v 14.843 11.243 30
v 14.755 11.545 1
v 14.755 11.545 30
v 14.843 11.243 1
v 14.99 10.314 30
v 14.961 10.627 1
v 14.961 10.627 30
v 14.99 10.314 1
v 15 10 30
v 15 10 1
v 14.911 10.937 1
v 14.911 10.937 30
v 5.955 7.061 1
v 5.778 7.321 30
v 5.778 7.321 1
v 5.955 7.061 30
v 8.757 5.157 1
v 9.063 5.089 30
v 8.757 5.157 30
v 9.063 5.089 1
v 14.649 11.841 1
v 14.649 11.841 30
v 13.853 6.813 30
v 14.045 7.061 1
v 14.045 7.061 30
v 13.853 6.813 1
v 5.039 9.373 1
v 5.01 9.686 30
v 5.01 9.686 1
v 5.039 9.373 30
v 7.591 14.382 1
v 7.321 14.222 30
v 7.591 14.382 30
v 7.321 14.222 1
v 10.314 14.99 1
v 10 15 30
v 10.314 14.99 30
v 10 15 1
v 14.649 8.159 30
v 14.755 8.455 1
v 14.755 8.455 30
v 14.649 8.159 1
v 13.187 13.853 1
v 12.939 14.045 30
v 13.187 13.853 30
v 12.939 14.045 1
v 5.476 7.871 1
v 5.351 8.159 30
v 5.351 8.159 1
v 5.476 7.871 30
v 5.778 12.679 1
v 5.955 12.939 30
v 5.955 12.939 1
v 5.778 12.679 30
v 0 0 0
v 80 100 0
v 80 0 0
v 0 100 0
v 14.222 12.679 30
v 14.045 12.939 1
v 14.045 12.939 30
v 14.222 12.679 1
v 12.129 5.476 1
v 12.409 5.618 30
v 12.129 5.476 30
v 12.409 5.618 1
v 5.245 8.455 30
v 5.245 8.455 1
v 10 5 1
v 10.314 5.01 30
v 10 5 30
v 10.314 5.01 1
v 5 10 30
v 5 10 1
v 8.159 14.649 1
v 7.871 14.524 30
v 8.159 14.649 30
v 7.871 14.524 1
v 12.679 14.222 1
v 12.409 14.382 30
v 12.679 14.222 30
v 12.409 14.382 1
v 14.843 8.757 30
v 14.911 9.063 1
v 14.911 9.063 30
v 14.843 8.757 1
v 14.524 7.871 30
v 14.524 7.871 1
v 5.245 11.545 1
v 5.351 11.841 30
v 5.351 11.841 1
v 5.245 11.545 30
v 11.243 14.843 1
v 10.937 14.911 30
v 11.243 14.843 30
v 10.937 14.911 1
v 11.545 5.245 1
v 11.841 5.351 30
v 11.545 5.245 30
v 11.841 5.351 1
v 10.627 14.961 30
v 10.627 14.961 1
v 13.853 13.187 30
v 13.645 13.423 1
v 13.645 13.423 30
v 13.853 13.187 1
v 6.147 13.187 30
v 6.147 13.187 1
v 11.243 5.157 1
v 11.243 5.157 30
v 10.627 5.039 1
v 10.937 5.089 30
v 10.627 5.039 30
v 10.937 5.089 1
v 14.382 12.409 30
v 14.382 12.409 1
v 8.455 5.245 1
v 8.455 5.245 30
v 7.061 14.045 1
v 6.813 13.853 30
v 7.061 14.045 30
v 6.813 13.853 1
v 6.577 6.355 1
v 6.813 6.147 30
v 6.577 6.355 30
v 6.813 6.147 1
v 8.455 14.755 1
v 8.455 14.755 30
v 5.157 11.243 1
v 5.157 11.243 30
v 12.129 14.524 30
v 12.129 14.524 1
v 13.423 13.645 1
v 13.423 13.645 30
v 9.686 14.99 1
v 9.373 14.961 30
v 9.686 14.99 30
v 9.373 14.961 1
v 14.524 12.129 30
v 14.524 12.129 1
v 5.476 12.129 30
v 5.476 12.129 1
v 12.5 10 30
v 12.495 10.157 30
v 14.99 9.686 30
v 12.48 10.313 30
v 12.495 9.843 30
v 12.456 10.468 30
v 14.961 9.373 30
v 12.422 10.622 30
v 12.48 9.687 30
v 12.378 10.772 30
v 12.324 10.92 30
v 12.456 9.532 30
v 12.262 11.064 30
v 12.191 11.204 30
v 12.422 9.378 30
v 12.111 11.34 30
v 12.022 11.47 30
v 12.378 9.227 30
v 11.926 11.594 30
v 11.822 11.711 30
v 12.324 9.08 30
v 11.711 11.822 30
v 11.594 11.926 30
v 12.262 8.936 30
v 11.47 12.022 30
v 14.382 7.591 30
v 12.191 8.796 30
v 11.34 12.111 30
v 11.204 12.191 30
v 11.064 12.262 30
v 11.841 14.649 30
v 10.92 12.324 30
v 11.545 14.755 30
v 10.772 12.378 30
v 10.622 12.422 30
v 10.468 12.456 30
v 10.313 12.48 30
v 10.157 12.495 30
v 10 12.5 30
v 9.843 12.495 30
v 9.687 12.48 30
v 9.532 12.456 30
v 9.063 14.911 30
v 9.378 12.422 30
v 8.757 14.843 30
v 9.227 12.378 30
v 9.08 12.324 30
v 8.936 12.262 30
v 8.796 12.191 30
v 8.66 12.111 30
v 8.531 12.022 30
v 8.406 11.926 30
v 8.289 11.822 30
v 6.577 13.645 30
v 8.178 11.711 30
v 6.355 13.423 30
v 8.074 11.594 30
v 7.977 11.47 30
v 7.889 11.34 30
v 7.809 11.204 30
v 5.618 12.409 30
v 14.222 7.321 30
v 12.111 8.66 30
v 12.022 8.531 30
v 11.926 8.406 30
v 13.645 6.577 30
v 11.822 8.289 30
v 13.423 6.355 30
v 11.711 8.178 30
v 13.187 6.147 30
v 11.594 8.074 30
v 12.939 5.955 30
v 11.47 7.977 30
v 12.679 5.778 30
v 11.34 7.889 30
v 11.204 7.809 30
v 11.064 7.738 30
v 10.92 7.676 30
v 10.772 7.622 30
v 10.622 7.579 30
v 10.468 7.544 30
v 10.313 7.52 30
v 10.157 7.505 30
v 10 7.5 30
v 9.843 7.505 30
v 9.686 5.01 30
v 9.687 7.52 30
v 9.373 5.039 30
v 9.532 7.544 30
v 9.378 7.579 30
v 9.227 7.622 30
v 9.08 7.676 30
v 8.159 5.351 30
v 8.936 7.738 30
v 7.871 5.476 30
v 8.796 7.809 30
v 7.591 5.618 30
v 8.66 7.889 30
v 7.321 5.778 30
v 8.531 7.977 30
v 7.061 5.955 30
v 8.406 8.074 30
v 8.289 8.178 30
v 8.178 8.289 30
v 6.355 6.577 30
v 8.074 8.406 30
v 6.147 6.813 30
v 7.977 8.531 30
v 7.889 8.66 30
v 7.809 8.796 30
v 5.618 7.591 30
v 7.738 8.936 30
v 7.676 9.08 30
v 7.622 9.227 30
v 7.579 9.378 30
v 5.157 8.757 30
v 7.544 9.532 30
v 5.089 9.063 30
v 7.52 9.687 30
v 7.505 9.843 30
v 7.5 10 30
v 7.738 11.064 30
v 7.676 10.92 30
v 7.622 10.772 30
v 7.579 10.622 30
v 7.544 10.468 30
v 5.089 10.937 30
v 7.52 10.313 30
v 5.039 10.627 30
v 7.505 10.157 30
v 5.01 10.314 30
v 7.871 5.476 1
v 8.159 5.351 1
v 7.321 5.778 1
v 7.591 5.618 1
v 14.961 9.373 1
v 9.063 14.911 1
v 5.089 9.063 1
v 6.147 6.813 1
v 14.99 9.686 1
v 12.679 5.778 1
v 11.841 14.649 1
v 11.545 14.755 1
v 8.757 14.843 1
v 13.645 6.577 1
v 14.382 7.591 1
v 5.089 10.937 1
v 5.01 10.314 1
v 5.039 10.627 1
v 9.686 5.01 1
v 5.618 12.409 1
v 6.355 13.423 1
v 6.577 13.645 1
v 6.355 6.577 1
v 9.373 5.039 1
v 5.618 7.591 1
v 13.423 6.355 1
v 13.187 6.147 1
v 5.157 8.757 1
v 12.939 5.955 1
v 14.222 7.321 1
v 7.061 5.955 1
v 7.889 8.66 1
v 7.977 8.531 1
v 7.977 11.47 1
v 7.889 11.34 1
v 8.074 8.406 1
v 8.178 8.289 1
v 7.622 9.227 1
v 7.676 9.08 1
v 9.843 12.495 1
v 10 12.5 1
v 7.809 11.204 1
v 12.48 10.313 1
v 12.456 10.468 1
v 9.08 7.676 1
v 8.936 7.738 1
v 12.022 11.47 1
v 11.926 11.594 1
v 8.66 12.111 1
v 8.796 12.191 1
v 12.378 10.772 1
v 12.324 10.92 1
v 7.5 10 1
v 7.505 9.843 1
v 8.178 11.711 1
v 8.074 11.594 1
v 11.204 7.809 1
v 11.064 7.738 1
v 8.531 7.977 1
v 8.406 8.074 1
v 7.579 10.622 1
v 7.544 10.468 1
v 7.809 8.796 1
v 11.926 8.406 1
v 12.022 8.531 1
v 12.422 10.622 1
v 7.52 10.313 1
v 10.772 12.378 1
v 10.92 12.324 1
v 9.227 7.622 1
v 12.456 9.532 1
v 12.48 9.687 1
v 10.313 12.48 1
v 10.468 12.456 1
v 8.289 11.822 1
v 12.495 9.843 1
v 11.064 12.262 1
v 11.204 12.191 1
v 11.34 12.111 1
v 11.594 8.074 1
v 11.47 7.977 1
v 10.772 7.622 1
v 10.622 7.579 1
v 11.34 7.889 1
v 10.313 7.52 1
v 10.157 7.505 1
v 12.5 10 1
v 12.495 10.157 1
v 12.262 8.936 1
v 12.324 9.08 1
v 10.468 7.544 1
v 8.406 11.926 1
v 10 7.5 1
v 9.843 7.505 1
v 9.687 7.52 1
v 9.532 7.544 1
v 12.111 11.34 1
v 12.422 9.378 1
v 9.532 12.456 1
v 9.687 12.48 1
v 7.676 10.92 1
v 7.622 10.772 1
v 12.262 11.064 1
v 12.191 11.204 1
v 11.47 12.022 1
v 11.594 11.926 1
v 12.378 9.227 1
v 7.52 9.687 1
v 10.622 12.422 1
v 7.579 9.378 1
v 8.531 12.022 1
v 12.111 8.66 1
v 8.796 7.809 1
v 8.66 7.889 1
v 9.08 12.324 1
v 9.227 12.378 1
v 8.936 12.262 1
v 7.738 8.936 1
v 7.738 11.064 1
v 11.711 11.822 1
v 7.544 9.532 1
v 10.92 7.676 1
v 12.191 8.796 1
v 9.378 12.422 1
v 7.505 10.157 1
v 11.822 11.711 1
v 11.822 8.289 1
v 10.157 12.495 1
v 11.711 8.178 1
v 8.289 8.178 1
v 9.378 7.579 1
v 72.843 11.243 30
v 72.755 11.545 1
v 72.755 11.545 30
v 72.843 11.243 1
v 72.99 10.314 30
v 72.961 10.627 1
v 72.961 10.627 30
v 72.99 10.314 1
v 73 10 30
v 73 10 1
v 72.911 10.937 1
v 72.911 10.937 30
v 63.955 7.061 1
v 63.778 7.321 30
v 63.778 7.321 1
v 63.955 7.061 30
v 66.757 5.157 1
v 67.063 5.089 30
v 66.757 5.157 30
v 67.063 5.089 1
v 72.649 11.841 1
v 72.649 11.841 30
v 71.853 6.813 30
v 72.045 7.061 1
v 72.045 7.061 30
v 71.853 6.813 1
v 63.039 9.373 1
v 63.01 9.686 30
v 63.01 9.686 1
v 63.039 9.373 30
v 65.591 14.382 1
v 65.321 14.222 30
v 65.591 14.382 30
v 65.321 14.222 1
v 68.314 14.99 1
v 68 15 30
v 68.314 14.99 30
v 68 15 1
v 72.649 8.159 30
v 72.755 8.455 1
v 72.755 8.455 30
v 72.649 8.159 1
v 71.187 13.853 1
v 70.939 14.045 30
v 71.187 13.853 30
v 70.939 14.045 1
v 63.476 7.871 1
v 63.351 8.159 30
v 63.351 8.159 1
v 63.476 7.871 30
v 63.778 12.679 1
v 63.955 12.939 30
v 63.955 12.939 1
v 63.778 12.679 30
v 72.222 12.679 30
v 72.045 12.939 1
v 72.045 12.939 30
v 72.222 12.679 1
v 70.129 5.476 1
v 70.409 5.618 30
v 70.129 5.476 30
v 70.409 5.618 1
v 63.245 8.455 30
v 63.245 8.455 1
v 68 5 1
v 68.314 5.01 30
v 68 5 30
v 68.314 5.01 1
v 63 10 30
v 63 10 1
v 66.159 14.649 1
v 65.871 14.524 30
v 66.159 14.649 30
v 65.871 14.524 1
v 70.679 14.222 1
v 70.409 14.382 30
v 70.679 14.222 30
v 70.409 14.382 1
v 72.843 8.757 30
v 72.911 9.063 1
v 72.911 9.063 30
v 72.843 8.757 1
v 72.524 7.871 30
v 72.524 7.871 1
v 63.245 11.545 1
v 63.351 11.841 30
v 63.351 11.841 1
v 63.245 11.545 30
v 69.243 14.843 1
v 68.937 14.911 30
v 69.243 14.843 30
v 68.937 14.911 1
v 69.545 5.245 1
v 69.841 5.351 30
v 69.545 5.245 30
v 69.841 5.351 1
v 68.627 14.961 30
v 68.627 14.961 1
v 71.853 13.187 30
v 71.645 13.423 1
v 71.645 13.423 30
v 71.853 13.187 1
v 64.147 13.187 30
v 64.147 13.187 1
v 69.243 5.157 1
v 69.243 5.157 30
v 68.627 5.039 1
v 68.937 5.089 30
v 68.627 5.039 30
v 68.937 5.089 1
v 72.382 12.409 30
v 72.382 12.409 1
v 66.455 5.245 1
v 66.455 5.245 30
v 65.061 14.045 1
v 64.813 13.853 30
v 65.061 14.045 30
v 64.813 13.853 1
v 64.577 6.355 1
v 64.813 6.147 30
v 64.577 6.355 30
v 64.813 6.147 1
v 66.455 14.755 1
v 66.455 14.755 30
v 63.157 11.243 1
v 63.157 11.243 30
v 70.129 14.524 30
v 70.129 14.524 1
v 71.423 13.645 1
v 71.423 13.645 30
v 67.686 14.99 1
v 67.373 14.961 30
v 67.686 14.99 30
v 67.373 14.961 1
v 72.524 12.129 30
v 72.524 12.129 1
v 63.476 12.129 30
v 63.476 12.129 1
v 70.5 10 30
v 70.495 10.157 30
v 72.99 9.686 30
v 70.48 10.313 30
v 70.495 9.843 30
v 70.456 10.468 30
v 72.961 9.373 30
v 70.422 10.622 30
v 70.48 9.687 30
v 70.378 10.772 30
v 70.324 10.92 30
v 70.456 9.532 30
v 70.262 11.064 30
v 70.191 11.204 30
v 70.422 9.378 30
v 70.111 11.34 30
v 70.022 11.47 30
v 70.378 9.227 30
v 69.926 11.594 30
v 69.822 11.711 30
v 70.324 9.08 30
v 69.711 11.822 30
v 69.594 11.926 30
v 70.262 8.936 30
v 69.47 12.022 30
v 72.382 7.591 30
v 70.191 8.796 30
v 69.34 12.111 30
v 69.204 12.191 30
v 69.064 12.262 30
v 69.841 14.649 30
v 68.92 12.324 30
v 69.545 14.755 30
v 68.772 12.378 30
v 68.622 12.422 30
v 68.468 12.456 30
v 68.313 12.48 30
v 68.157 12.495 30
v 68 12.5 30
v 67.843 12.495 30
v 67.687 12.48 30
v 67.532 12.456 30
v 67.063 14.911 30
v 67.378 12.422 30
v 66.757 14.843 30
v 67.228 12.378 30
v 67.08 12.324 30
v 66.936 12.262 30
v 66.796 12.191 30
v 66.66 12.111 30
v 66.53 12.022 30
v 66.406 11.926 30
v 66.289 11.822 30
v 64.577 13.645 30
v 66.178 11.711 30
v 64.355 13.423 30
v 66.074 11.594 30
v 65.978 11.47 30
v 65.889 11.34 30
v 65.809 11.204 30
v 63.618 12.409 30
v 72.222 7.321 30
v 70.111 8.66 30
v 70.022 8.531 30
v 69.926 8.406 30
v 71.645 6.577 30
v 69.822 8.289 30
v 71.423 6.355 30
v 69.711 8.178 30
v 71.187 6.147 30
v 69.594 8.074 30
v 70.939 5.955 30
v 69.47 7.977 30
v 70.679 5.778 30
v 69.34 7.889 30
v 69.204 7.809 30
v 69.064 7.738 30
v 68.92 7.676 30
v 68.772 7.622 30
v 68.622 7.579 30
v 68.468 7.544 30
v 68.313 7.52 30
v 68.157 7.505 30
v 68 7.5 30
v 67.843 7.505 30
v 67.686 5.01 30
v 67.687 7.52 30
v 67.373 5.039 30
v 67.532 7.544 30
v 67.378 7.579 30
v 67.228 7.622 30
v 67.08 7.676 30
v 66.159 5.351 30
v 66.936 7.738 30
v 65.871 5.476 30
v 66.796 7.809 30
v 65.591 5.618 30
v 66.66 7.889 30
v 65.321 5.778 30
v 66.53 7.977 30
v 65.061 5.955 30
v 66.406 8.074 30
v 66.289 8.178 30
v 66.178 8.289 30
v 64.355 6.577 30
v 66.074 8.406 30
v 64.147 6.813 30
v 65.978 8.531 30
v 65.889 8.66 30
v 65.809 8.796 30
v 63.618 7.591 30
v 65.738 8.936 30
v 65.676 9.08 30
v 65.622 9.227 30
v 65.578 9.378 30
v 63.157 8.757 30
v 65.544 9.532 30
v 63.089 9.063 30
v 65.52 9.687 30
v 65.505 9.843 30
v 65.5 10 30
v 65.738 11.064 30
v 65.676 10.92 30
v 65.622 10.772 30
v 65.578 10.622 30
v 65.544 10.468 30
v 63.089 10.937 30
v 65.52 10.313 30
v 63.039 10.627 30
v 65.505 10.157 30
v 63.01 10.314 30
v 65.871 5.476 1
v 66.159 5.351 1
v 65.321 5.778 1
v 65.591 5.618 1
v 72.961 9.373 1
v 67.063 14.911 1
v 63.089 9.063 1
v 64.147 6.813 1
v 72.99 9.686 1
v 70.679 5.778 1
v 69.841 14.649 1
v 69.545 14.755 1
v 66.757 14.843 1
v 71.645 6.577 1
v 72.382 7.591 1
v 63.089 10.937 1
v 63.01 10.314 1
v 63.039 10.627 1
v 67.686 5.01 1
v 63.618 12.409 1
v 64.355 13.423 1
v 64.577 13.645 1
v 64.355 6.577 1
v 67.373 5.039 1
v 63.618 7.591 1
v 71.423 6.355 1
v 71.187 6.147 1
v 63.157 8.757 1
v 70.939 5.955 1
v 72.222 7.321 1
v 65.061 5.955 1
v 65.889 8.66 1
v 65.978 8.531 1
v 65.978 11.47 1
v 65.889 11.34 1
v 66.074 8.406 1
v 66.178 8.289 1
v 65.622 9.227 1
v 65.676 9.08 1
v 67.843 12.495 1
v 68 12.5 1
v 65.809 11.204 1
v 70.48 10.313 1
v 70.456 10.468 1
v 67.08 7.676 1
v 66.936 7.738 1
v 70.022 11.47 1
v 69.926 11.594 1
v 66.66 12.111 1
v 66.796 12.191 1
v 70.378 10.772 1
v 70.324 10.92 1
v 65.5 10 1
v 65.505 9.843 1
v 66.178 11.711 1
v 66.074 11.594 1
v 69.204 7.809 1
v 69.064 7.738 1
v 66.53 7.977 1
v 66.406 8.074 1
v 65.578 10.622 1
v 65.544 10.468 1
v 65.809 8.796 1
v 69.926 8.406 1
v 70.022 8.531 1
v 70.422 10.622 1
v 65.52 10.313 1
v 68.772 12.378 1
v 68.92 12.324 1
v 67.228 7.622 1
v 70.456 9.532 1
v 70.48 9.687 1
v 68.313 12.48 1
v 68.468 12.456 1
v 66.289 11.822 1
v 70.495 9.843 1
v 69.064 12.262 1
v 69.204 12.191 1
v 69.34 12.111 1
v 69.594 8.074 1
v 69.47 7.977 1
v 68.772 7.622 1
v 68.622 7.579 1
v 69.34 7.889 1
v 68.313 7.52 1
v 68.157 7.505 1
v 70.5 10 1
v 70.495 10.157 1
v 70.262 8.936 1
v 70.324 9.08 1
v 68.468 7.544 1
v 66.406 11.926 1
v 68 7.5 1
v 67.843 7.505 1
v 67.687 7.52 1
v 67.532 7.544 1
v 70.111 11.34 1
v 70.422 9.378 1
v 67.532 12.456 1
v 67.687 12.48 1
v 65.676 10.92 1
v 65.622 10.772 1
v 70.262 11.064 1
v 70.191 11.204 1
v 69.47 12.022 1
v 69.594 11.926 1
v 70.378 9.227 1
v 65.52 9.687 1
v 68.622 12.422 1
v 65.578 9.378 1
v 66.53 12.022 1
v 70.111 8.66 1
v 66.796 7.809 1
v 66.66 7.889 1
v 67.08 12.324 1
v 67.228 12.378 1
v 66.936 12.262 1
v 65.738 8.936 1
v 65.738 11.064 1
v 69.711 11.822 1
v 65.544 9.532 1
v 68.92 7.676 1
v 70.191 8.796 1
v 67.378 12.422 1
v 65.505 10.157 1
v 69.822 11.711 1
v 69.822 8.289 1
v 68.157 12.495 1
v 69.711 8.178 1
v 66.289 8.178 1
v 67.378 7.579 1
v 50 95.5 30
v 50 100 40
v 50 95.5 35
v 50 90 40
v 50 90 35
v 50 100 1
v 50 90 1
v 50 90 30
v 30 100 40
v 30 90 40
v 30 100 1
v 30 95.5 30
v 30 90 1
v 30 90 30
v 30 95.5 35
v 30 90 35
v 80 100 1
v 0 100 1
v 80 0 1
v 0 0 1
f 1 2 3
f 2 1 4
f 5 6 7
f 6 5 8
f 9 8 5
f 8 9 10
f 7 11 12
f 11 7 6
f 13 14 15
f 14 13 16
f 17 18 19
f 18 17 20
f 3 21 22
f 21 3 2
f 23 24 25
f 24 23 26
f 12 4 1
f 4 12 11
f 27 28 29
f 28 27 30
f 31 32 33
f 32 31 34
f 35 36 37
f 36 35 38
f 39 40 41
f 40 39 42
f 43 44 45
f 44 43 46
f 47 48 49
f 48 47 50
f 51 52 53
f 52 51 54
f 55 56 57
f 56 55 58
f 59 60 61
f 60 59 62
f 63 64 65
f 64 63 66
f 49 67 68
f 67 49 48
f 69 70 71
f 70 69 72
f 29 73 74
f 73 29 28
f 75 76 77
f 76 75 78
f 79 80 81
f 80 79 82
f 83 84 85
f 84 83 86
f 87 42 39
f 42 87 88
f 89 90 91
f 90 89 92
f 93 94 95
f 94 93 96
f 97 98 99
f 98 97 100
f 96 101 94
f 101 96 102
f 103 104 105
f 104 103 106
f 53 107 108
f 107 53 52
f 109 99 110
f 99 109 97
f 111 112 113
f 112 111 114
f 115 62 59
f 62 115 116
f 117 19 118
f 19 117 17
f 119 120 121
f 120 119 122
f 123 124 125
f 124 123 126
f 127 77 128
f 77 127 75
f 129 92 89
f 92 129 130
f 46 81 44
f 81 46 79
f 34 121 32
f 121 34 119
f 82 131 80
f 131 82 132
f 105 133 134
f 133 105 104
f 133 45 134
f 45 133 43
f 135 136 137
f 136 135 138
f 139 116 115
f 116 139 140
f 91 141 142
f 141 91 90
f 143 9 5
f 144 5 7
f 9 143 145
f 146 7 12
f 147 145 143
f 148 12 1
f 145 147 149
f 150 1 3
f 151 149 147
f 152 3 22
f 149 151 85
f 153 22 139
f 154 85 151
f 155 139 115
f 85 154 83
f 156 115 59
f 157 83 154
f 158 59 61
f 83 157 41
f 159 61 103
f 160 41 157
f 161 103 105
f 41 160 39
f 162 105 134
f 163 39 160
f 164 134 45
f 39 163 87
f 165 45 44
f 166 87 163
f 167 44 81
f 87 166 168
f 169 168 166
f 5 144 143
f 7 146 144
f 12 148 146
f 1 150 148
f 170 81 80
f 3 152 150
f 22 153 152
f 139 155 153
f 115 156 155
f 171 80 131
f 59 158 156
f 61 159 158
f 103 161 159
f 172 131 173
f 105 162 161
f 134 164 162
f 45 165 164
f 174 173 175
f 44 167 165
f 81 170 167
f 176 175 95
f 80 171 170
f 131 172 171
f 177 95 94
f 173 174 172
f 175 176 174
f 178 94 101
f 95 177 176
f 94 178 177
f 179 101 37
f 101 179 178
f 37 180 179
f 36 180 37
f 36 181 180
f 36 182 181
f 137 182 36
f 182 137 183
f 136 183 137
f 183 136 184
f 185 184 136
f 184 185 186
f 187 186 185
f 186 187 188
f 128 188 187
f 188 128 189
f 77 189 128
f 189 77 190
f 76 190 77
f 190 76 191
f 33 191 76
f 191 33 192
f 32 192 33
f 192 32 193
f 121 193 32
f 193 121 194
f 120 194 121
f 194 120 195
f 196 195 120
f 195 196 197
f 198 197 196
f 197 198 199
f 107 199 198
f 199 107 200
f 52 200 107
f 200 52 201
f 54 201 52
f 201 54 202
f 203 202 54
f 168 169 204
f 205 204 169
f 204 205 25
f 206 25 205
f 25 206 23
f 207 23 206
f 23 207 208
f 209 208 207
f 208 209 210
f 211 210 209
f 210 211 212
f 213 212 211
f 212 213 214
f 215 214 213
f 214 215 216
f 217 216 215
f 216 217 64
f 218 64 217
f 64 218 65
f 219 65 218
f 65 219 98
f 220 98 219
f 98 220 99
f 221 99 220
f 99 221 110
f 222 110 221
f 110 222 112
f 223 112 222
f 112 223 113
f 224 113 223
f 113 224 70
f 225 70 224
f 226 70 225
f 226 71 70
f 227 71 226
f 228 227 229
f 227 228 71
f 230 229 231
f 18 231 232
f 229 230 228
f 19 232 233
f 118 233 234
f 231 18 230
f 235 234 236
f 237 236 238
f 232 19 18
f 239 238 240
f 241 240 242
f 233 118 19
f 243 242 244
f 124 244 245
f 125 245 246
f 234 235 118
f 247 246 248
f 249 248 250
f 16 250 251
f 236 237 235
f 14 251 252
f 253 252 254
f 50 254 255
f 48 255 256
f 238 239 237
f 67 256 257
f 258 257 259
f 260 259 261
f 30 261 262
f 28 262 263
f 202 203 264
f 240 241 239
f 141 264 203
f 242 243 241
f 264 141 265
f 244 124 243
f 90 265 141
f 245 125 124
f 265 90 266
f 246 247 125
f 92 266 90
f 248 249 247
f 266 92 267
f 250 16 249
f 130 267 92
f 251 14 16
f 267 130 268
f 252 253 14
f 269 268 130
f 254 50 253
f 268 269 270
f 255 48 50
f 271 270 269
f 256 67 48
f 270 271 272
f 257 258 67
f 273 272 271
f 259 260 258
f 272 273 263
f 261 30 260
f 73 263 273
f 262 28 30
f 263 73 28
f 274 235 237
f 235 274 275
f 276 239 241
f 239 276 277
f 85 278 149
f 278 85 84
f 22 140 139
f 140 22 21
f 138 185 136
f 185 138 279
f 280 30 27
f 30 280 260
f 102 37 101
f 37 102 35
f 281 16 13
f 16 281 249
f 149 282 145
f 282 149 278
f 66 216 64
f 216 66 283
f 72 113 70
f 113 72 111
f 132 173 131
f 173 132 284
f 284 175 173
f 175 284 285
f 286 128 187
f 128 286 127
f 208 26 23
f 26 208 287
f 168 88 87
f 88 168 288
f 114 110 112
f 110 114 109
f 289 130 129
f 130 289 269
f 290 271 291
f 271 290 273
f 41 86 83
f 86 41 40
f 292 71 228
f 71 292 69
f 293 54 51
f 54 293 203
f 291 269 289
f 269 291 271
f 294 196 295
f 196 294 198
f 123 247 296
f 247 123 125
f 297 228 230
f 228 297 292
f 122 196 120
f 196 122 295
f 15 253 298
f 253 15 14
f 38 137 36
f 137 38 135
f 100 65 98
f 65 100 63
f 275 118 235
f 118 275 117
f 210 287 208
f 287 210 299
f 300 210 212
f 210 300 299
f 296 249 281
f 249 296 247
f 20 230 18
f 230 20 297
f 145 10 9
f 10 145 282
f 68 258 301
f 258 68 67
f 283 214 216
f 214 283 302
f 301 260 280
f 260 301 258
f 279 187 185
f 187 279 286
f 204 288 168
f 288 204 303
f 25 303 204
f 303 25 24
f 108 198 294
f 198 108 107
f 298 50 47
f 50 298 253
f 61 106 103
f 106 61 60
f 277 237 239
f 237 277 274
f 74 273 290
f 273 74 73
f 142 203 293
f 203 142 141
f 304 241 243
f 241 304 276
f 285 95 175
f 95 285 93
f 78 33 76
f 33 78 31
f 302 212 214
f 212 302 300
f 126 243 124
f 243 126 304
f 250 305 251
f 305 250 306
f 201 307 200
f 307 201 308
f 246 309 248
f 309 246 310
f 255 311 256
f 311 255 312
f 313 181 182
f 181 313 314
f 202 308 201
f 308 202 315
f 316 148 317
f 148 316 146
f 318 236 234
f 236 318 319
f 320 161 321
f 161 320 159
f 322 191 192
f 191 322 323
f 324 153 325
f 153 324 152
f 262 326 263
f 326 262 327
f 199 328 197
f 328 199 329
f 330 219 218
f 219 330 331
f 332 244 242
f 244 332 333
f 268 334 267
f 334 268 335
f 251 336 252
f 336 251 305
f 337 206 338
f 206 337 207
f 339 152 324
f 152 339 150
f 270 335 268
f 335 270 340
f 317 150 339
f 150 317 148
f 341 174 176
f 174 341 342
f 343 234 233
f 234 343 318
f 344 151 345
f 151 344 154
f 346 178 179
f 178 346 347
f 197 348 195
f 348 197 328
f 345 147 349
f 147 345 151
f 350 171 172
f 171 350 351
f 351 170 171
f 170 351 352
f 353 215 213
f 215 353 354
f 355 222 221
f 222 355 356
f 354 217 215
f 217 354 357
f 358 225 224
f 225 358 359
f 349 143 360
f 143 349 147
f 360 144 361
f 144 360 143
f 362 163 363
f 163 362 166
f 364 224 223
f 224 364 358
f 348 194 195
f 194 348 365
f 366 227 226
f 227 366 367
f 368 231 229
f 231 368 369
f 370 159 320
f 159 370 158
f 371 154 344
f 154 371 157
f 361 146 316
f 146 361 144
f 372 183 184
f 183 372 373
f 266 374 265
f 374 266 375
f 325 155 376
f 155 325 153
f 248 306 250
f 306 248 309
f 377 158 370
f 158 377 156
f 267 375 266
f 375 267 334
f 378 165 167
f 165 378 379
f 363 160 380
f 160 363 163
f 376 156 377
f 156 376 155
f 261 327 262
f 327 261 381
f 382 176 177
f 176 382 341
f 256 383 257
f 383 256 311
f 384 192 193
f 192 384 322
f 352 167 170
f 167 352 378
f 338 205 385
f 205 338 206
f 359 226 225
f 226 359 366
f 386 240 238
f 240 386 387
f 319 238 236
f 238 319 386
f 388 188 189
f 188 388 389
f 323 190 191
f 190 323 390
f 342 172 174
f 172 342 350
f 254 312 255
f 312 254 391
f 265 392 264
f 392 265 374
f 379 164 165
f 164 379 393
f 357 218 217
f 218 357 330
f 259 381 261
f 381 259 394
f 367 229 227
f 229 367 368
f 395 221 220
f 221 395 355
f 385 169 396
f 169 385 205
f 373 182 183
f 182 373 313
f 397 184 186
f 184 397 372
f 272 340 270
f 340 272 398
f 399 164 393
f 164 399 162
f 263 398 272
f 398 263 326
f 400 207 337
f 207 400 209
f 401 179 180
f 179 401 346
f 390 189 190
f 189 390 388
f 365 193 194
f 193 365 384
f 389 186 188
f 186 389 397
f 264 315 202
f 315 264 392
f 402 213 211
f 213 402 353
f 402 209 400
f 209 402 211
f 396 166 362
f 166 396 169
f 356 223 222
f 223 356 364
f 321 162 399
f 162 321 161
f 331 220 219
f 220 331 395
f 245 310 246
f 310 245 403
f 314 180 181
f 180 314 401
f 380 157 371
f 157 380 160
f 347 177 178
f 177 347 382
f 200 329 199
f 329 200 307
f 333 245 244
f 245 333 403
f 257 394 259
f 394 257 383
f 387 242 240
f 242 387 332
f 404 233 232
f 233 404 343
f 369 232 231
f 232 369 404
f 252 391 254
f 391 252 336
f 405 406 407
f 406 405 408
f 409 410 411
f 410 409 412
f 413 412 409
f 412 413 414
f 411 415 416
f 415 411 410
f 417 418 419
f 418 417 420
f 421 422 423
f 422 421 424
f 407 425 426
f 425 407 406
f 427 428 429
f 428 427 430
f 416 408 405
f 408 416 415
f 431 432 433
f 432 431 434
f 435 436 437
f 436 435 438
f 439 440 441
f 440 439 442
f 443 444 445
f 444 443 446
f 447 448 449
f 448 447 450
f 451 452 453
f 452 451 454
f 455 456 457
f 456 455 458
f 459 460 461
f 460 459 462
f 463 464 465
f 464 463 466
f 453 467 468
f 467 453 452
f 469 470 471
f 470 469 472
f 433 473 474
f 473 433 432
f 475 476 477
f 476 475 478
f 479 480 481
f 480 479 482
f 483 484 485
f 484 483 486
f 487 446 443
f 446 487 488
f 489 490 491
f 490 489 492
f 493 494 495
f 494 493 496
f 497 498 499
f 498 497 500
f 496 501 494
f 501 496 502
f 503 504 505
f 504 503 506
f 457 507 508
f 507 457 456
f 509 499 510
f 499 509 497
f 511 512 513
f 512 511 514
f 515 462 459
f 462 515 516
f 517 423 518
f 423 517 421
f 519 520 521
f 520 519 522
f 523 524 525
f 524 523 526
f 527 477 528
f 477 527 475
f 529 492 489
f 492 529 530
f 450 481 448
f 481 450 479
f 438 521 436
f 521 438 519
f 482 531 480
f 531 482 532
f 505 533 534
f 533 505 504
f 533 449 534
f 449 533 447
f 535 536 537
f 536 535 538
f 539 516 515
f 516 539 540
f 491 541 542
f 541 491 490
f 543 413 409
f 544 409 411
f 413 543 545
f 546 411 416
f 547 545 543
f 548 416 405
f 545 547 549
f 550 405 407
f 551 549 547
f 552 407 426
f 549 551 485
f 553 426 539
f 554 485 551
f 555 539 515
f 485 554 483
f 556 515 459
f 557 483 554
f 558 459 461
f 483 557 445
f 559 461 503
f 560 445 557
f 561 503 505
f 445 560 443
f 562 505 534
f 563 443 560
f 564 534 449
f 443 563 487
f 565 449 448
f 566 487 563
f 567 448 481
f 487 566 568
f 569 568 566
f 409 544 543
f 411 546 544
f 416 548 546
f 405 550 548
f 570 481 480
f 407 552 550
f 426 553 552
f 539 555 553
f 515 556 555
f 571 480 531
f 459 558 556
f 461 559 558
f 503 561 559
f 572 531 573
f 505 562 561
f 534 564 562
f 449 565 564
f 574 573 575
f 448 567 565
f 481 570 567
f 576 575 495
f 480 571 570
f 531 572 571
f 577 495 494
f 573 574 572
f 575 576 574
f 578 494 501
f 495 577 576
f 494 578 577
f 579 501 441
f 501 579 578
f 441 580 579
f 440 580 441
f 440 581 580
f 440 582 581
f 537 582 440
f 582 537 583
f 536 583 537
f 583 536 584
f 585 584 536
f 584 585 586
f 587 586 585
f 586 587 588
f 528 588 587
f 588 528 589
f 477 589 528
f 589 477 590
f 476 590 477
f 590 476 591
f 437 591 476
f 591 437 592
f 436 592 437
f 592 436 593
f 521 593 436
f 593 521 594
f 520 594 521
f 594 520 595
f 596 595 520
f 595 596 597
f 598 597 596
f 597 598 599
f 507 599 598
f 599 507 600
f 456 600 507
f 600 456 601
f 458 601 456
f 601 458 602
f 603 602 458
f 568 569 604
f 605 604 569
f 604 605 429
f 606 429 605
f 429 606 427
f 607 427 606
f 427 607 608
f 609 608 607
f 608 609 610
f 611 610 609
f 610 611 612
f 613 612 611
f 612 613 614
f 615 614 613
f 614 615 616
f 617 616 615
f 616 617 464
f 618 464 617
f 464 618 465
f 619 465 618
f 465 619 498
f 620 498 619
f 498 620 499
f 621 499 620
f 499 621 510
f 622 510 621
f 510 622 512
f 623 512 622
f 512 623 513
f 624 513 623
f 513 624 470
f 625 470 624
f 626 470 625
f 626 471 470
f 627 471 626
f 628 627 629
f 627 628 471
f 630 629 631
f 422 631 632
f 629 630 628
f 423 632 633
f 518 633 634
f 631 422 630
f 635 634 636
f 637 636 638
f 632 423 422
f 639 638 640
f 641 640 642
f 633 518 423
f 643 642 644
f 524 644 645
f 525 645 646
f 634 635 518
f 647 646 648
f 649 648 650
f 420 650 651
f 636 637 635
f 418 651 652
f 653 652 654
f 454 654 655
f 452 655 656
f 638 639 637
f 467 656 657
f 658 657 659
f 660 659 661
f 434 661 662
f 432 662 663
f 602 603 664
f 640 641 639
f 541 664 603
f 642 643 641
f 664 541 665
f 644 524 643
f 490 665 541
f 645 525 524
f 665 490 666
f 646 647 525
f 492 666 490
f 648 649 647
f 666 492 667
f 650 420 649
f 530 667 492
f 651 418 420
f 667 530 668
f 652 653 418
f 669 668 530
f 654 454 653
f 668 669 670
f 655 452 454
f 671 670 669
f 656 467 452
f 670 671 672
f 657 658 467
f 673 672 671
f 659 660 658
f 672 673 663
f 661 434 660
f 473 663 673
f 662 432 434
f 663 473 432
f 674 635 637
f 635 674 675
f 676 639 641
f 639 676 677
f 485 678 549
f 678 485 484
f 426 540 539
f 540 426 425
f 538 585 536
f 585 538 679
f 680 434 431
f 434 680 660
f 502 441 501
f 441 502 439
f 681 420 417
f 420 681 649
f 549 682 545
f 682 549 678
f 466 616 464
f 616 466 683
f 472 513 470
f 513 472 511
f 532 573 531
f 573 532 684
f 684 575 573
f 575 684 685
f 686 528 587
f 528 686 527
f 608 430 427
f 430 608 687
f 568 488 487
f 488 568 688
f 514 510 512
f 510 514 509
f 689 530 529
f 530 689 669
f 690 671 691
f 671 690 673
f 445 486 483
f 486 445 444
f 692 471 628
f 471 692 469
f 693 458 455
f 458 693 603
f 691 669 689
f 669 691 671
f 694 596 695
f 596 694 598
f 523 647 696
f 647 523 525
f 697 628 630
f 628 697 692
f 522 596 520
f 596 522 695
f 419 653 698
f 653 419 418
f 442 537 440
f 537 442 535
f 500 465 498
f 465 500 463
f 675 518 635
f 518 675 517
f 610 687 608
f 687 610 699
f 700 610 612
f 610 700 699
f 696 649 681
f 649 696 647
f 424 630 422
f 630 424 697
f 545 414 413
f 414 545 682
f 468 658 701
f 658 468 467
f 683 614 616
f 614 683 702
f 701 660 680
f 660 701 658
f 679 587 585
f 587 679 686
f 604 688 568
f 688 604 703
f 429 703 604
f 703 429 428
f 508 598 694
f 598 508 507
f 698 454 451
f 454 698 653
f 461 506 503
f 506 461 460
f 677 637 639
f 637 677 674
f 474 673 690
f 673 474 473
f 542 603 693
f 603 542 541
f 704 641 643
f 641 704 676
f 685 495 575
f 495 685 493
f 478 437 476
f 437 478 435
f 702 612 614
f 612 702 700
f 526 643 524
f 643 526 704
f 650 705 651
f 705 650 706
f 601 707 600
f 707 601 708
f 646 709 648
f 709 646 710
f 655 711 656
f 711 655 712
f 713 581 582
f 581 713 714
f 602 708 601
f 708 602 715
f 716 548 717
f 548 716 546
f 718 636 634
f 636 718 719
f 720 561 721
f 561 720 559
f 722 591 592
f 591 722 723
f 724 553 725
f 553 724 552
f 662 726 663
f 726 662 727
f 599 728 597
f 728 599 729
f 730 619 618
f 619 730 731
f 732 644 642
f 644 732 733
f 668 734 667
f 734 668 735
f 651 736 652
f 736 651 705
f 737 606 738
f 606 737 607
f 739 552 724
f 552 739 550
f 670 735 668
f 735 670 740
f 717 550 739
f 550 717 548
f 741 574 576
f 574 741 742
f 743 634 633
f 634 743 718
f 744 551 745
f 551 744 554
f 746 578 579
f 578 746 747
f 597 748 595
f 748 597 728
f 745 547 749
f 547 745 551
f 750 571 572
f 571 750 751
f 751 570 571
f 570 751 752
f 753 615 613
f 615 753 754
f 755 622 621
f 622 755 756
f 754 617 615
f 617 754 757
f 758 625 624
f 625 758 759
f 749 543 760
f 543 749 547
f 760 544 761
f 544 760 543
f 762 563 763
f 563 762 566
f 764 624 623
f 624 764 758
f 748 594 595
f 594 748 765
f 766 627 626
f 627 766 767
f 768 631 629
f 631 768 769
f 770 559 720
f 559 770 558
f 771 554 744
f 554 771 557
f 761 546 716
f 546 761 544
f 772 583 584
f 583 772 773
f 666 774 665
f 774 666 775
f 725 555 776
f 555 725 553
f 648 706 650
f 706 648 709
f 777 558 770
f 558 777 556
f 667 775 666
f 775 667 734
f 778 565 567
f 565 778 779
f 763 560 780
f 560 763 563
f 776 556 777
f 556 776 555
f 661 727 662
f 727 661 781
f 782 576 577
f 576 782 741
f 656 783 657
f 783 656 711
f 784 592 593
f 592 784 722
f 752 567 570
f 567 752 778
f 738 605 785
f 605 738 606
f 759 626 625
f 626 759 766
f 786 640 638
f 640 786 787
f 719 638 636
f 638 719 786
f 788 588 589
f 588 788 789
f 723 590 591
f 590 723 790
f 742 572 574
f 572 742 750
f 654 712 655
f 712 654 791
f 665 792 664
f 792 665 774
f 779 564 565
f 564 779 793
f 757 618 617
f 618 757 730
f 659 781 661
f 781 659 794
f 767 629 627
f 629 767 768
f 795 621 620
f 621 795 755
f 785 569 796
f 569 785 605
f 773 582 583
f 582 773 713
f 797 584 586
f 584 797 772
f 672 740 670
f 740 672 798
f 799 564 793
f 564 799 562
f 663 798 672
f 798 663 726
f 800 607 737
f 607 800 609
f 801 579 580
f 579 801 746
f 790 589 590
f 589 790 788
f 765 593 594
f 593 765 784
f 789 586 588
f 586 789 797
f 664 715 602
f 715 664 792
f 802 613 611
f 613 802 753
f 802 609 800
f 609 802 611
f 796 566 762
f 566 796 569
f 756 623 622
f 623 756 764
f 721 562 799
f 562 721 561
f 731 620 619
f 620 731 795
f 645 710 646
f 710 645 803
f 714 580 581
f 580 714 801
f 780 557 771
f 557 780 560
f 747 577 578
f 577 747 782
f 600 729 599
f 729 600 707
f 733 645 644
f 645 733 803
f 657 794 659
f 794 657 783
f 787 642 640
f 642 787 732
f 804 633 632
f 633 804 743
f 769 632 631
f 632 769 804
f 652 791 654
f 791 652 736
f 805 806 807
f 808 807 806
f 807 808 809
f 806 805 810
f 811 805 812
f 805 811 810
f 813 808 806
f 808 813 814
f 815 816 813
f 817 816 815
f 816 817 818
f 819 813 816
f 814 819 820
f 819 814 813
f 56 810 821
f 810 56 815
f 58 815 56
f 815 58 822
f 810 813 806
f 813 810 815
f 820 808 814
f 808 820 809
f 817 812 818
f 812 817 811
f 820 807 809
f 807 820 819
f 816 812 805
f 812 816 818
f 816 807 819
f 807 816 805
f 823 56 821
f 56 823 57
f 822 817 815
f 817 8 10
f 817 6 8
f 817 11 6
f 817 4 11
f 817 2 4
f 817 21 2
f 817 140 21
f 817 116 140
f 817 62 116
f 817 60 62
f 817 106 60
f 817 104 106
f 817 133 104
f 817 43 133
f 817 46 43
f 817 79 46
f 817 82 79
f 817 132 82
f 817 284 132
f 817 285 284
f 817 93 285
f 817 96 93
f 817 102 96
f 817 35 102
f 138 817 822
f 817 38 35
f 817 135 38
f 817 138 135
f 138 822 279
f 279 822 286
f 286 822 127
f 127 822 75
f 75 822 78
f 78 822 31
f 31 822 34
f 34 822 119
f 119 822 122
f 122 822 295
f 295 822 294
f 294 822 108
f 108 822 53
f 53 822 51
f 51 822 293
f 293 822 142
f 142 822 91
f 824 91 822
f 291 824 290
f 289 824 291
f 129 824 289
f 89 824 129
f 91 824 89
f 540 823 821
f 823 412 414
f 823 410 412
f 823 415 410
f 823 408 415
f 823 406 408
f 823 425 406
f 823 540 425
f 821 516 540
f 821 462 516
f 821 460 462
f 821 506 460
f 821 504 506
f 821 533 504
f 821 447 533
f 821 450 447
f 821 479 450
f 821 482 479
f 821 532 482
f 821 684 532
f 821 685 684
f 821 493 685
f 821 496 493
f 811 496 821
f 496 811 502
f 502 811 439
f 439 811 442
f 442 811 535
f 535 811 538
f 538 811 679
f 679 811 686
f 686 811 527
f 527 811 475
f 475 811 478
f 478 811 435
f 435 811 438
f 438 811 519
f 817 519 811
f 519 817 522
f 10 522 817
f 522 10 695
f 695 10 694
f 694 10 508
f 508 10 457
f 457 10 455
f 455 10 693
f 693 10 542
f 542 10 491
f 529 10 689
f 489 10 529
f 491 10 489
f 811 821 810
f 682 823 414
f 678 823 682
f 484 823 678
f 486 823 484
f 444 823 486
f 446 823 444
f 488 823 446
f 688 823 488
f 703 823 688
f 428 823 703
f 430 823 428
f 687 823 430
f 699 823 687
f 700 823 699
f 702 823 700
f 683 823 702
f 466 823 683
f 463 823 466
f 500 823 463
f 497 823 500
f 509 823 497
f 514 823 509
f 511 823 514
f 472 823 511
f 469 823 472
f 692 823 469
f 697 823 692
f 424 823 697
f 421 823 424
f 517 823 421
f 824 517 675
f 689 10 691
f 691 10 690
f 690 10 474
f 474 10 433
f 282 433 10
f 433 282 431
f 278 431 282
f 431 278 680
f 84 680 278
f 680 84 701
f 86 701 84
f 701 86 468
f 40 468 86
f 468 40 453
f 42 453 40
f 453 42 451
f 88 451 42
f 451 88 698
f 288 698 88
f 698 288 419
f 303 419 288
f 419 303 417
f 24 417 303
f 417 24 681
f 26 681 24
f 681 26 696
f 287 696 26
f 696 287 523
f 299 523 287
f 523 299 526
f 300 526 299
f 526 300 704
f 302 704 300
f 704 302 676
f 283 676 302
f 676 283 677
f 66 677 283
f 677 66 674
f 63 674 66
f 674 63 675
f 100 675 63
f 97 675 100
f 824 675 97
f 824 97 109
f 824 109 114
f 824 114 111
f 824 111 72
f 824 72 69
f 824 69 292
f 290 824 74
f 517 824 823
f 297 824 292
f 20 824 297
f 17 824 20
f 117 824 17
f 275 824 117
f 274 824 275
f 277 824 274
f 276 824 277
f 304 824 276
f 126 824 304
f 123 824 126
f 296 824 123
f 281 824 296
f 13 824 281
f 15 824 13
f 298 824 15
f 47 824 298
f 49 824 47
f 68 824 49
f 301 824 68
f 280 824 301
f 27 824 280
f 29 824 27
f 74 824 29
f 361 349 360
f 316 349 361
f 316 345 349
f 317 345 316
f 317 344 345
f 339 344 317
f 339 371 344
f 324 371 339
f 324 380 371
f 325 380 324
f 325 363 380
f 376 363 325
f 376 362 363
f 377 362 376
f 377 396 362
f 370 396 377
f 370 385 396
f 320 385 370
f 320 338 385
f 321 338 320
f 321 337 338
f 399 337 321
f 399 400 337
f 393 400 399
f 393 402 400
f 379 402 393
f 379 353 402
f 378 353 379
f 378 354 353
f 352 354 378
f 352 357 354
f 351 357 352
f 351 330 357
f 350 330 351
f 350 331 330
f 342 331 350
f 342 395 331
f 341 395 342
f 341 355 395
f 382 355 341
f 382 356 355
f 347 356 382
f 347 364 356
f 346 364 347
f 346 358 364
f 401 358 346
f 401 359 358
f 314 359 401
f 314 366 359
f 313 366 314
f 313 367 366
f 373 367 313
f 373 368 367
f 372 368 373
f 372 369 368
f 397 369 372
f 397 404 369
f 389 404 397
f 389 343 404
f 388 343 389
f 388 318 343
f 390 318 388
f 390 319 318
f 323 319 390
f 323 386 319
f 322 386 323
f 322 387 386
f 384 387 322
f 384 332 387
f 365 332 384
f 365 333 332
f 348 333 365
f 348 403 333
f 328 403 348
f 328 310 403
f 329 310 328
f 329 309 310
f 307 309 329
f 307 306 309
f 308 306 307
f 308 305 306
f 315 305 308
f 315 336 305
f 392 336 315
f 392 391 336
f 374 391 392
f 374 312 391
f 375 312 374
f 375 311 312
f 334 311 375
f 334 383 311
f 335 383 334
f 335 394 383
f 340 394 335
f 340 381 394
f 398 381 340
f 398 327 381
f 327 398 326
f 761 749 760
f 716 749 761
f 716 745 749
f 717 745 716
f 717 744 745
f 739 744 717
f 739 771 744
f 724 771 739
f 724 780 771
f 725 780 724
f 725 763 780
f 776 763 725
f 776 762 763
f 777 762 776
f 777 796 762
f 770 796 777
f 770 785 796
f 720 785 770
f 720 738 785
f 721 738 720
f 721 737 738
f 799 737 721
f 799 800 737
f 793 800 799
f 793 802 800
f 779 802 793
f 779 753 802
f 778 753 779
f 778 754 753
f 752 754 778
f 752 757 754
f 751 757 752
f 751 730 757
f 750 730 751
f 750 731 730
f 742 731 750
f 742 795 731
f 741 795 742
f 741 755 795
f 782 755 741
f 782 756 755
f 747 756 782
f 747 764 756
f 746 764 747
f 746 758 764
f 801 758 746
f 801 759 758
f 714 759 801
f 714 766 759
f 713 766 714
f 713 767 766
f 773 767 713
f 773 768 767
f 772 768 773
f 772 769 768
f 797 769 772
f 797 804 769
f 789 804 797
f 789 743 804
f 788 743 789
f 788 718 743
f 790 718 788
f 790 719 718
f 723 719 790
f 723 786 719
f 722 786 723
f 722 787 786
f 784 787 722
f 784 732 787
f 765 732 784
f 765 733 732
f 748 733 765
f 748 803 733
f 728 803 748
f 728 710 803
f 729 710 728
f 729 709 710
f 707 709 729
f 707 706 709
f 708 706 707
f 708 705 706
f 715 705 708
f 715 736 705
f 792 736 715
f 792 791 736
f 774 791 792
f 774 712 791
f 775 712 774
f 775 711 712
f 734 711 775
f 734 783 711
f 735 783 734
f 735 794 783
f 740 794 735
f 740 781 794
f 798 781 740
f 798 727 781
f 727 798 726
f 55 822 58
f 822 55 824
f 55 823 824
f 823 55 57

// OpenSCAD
//casing
$fn=100;
pillarH = 30 ;
pillarD = 10 ;
pillarID = 5 ;
pillarSpacing = 58 ;

battLidX = 55 ;
battLidY = 55 ;
battLidZ = 2 ;


module pillar() {
    difference() {
        cylinder(h=pillarH, d=pillarD);
        translate([0,0,-.1]) cylinder(h=pillarH+.2, d=pillarID);
    }
}


translate ([10,10,0]) union() {
    //both pillars
    translate([0,0,0]) pillar();
    translate([pillarSpacing,0,0]) pillar();
    //The rear mount
    translate([20,80,0]) 
    union(){
        difference(){
            cube([20,10,40]);
            translate([-.5,-.5,30])cube([21,6,5]);
        }
    }
}

//battLid
*cube ([battLidX,battLidY,battLidZ]);

//casing base
cube ([80,100,1]);
